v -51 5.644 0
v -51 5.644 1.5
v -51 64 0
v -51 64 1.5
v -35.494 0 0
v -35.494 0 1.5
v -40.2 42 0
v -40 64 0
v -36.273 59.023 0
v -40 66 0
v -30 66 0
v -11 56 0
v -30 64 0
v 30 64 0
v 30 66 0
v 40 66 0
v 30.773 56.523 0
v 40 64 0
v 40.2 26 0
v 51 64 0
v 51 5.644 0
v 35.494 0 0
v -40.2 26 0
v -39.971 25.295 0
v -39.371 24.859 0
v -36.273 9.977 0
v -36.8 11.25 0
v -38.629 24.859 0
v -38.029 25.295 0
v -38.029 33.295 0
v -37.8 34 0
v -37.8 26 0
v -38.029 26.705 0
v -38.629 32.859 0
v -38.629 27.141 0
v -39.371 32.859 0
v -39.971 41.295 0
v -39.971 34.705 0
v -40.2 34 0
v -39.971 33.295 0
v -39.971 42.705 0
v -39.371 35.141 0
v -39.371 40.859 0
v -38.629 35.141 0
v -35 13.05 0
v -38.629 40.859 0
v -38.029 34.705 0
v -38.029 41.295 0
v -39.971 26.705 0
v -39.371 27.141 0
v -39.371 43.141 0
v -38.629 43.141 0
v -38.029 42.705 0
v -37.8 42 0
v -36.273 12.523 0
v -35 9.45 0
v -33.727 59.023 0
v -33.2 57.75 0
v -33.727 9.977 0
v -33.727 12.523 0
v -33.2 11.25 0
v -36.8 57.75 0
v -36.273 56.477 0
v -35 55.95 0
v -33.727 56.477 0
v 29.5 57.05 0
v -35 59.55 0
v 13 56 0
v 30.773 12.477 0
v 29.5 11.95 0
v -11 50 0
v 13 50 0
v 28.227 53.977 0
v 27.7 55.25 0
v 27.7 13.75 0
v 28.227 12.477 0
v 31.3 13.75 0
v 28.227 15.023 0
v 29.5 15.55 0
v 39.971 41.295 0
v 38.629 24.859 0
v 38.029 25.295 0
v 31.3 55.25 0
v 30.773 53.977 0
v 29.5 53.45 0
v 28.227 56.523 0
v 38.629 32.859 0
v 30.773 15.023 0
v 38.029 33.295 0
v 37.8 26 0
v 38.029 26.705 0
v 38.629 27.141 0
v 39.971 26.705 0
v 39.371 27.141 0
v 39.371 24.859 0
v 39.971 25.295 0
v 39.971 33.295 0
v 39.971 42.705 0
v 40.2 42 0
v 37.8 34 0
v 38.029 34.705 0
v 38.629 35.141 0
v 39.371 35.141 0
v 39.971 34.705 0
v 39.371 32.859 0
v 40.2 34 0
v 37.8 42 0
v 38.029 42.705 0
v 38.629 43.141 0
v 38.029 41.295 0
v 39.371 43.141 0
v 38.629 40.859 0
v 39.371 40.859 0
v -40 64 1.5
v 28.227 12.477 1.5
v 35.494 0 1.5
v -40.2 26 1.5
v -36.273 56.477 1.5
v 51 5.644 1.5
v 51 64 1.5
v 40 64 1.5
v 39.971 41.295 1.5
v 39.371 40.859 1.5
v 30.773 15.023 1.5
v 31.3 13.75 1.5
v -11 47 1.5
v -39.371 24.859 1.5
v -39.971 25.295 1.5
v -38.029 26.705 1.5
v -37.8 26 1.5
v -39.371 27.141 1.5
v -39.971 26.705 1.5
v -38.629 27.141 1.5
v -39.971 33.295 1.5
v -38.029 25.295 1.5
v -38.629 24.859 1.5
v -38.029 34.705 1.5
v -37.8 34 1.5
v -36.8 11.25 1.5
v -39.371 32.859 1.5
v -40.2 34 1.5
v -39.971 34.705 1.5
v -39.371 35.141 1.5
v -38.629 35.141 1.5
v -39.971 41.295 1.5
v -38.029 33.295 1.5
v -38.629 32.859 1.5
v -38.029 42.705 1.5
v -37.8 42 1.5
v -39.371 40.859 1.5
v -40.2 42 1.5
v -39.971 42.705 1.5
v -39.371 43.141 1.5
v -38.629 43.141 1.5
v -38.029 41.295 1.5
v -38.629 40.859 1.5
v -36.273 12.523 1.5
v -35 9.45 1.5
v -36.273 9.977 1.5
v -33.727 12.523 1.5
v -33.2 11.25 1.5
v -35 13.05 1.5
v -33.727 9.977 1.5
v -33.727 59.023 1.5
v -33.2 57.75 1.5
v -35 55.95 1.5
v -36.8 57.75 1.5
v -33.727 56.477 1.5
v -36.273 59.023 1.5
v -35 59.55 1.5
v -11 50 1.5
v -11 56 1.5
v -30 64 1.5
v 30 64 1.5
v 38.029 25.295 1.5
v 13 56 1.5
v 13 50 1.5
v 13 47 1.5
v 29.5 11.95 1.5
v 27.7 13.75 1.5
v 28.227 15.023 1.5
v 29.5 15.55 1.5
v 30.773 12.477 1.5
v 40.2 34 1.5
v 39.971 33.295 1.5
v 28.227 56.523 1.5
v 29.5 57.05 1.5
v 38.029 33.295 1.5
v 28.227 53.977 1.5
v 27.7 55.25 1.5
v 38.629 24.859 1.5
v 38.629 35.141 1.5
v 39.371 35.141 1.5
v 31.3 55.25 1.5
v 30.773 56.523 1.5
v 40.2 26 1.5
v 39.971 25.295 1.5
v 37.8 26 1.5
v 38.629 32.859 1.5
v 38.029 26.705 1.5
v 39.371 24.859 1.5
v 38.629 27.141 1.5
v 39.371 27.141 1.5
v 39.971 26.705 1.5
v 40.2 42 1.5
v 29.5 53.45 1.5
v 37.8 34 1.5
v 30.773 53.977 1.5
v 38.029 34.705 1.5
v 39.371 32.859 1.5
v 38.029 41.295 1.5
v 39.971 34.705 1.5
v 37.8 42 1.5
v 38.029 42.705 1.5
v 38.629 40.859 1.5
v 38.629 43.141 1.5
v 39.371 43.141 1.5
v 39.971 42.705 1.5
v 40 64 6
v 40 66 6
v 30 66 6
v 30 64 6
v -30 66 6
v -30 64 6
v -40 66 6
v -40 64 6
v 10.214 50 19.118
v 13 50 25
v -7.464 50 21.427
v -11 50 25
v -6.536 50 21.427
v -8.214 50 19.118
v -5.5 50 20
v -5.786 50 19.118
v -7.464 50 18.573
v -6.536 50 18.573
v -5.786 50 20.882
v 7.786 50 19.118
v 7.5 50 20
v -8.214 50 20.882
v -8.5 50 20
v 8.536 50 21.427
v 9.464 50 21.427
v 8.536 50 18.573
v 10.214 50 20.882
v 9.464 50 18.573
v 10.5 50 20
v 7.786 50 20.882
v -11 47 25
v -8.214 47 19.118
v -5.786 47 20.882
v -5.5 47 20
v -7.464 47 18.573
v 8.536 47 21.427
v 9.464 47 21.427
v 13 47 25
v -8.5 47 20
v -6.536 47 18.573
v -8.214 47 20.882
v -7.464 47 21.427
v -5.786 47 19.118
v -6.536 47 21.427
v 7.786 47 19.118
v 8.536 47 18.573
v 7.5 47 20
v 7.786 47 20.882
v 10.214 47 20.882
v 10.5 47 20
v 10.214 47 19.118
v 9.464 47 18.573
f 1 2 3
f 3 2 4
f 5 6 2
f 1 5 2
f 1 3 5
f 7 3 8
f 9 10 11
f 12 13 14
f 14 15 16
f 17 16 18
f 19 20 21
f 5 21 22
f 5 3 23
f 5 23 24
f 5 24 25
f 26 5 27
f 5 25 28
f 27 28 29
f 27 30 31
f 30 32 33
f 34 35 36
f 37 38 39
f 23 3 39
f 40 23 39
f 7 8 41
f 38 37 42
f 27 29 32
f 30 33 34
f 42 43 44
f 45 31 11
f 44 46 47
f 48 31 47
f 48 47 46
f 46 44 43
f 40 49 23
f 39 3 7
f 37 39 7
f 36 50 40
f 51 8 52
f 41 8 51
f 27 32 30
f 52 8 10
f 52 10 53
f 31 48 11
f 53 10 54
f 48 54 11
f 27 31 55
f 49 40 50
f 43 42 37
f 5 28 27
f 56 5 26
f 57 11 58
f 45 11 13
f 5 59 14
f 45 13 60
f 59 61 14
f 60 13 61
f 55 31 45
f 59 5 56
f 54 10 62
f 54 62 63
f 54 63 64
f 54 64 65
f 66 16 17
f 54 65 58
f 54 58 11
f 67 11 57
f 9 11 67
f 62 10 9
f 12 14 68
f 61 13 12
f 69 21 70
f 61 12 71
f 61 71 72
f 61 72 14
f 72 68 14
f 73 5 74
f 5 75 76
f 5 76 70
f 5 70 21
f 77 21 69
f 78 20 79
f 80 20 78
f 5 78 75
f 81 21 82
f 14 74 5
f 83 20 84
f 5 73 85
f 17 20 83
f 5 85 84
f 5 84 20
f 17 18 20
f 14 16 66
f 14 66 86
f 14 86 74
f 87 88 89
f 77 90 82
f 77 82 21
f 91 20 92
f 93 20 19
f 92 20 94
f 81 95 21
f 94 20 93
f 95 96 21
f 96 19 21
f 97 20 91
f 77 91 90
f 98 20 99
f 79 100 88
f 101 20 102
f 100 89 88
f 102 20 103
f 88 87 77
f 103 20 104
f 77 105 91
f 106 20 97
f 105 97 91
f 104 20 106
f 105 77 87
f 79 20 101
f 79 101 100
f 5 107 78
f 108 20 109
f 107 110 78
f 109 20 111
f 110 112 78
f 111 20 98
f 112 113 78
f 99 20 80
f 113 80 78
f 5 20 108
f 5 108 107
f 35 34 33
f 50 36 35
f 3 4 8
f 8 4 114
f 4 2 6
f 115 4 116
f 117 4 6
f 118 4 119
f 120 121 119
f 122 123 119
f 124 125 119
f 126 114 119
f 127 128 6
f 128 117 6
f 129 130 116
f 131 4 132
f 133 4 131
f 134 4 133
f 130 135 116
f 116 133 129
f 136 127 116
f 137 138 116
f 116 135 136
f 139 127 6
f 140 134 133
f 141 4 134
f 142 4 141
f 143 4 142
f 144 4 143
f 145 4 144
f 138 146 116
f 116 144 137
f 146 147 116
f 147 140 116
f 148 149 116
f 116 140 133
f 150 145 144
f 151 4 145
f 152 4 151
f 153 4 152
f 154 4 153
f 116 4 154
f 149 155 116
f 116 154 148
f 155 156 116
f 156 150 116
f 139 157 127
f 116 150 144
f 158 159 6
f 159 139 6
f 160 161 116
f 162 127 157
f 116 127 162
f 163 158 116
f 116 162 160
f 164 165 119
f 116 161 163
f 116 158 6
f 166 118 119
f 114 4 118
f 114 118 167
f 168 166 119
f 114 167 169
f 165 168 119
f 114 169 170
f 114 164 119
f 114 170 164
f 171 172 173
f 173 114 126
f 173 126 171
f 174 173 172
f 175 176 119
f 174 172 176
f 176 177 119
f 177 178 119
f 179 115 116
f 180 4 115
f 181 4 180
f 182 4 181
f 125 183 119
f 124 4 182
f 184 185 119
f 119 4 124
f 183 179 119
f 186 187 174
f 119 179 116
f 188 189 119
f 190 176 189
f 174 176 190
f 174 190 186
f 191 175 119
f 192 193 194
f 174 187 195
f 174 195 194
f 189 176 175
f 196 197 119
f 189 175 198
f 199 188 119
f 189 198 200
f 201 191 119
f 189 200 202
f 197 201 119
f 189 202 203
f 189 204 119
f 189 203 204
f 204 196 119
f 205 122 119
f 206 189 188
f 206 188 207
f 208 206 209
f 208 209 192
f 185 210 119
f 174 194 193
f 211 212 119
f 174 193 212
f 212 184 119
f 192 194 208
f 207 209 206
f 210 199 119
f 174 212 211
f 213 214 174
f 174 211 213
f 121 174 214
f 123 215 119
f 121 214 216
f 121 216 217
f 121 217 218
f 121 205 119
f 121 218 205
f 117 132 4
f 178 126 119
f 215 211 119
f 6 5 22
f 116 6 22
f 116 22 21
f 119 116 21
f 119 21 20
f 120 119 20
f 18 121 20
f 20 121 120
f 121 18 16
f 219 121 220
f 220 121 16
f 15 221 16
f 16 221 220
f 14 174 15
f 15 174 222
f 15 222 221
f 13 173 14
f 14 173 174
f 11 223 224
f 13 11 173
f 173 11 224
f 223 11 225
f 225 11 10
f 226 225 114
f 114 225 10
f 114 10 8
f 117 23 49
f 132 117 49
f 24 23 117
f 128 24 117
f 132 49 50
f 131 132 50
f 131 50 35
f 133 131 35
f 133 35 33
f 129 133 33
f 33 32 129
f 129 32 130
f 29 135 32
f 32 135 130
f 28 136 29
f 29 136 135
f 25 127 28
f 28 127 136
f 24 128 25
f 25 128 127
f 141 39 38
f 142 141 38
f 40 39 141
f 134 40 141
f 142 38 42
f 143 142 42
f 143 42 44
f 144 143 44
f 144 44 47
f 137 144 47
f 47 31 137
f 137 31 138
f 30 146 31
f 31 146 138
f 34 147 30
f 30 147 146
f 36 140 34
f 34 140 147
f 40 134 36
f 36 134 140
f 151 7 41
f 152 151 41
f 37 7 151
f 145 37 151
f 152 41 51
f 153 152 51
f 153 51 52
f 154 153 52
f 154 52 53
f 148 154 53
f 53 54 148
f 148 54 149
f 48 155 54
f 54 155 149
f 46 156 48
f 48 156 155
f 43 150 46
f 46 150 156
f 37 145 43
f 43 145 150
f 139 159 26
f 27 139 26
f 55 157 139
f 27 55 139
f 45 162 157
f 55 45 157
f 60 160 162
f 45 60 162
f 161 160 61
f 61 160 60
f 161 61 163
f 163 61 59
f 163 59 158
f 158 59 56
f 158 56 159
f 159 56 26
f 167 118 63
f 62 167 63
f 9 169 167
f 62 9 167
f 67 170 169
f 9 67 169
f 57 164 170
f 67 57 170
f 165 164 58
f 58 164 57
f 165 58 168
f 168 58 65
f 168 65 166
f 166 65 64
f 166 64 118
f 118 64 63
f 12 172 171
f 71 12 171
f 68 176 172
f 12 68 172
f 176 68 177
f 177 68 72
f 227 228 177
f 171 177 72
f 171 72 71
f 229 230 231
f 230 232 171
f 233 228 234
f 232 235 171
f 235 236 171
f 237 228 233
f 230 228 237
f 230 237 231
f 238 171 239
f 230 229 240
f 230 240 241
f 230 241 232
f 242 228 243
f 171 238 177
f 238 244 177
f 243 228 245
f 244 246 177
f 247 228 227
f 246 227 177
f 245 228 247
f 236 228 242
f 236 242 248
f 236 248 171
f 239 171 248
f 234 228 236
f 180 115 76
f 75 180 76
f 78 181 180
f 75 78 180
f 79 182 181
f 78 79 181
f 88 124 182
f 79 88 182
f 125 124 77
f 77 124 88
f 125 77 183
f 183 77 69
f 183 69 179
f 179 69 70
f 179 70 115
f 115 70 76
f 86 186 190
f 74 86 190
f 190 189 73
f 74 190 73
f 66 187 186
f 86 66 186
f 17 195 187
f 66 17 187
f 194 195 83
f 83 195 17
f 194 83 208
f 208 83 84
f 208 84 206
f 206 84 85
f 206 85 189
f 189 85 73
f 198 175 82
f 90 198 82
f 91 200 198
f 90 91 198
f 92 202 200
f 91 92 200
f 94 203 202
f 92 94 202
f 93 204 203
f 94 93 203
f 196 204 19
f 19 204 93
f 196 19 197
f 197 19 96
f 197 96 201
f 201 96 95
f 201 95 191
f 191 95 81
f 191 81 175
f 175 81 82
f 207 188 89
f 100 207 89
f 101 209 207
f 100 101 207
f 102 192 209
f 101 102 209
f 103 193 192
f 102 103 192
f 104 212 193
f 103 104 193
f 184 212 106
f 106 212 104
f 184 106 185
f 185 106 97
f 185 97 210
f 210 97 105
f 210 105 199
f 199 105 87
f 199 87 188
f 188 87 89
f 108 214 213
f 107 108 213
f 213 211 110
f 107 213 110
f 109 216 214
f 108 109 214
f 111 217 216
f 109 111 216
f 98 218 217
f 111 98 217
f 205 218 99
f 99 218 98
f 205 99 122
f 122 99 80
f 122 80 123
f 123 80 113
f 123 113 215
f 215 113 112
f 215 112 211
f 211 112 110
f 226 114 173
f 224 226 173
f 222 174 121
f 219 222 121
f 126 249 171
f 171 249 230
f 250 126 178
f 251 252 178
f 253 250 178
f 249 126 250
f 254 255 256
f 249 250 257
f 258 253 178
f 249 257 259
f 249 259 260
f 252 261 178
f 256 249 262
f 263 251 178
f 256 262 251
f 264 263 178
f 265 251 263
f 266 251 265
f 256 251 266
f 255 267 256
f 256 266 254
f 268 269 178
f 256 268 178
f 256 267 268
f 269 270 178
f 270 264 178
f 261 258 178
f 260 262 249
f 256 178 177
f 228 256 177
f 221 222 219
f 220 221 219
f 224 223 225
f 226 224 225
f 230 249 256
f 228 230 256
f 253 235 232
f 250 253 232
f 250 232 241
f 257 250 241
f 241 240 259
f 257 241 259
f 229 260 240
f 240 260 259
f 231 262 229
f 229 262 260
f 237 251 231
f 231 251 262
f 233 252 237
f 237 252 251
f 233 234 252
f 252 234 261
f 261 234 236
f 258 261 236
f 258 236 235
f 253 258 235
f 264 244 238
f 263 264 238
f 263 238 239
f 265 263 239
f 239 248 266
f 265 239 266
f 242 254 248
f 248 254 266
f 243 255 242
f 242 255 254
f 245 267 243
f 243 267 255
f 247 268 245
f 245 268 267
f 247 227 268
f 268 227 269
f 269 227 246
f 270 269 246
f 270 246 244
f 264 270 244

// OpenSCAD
// file: raid3r/raid3r.scad
/*Pequeña biblioteca con las funciones mas comunes*/

module agujereado(X,Y,H){
	union(){
		for(j=[0:X-1])
		{
			translate([0,j*8,0])
			{
				for(i=[0:Y-1])
				{
					translate([i*6,0,-1])cylinder(r=1.2, h=H, $fn=10);
				}
			}
		}
	}
}

module dynahole(H){
	translate([-45.5/2,-10,1])union(){
		translate([3.5+6,16,0])agujereado(4,1,H);
		translate([9.5+26.5,16,0])agujereado(4,1,H);
		translate([45.5/2,10,-1])cylinder(r=11.5,h=H);	
		translate([(45.5-20)/2,6.5,-1])cube([20,36,H]);
		translate([22.5,46,0])union(){
			translate([7,0,-1])cylinder(r=1.5, h=H, $fn=10);
			translate([-7,0,-1])cylinder(r=1.5, h=H, $fn=10);
		}
	}
}

module cruz(H){
	translate([-34,-13,3])union(){
		translate([34,13,-3]) cylinder(r=4,h=H);
		translate([42,13,-3]) cylinder(r=1.5,h=H);
		translate([26,13,-3]) cylinder(r=1.5,h=H);
		translate([34,21,-3]) cylinder(r=1.5,h=H);
		translate([34,5,-3]) cylinder(r=1.5,h=H);
	}
}

module miniservo(H){
	translate([-15,-7,0])union(){
		translate([15,7,0])rotate([0,0,0])cylinder(r=8,h=H);
		translate([-1.75,7,0])union(){
			cylinder(r=1.5, h=H,$fn=20);
			translate([27.5,0,0])cylinder(r=1.5, h=H,$fn=20);
		}
	}
}

module beagleboneHoles(z){
union(){
	translate([0,0,-1])cylinder(r=2,h=z, $fn=8);
	translate([0,46.5,-1])cylinder(r=2,h=z, $fn=8);
	translate([64.5+1.5,2.5,-1])cylinder(r=2,h=z, $fn=8);
	translate([64.5+1.5,44,-1])cylinder(r=2,h=z, $fn=8);
	translate([0,0,-1])cylinder(r=3,h=3, $fn=8);
	translate([0,46.5,-1])cylinder(r=3,h=3, $fn=8);
	translate([64.5+1.5,2.5,-1])cylinder(r=3,h=3, $fn=8);
	translate([64.5+1.5,44,-1])cylinder(r=3,h=3, $fn=8);
	}
}
// main file
use <raid3r/raid3r.scad>

module beagleboneHoles(z){

translate([0,0,-1])cylinder(r=1.8,h=z, $fn=8);
translate([0,46.5,-1])cylinder(r=1.8,h=z, $fn=8);
translate([64.5,2.5,-1])cylinder(r=1.8,h=z, $fn=8);
translate([64.5,44,-1])cylinder(r=1.8,h=z, $fn=8);


}

union(){
	difference(){
		translate([-51,0,0])cube([102,64,1.5]);

		translate([-10-51,-12,-5])rotate([0,0,-20])cube([20,20,80]);
		mirror([1,0,0])translate([-10-51,-12,-5])rotate([0,0,-20])cube([20,20,80]);
		translate([78/2,26,0])agujereado(3,1,6);
		mirror([1,0,0])translate([78/2,26,0])agujereado(3,1,6);
		translate([-11,50,-1])cube([24,6,25]);
		translate([16-51,8+6.5/2,0])beagleboneHoles(5);
	}
	translate([30,64,0])cube([10,2,6]);
	mirror([1,0,0])translate([30,64,0])cube([10,2,6]);
}

translate([-44,20,0])difference(){
translate([33,27,0])cube([24,3,25]);
translate([37,20,20])rotate([-90,0,0])union(){
cylinder(r=1.5, h=100,$fn=10);
translate([16,0,0])cylinder(r=1.5, h=100,$fn=10);
}}
